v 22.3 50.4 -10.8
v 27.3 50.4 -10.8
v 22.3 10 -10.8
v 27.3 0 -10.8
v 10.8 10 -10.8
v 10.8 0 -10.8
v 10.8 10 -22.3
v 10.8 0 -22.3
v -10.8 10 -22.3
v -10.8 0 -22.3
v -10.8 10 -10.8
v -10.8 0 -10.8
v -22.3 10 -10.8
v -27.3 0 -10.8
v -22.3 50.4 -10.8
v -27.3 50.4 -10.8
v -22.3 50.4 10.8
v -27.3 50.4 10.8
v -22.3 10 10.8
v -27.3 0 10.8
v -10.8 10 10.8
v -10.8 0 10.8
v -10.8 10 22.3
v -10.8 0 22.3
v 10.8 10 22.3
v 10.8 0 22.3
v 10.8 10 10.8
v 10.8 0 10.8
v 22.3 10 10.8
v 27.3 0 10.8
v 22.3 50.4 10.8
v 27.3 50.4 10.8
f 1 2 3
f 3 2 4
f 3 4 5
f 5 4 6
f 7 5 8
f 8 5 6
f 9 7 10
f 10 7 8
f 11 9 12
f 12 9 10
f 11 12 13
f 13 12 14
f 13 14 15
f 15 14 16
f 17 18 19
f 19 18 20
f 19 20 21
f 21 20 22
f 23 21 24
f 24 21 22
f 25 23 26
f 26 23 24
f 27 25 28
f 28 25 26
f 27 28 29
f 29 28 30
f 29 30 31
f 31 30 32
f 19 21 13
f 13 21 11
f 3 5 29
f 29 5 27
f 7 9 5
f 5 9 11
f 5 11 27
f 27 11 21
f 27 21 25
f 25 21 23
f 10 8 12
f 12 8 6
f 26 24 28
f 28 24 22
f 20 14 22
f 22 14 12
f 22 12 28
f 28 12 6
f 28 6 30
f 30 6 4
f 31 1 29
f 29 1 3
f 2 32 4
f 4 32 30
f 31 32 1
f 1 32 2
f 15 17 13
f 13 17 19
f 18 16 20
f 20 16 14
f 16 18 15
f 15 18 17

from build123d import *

# Parameters (mm, degrees)
RESSALTO_EXTRUS_O1_DEPTH = 10
ESBO_O2_W                = 5
ESBO_O2_H                = 21.6
RESSALTO_EXTRUS_O2_DEPTH = 50.4


with BuildPart() as part:
    # Esboço1 → Ressalto-extrusão1 (new body)
    with BuildSketch(Plane(origin=(0, 0, 0), x_dir=(1, 0, 0), z_dir=(0, 1, 0))):
        Polygon((-10.8, 22.3), (-10.8, 10.8), (-22.3, 10.8), (-22.3, -10.8), (-10.8, -10.8), (-10.8, -22.3), (10.8, -22.3), (10.8, -10.8), (22.3, -10.8), (22.3, 10.8), (10.8, 10.8), (10.8, 22.3), align=None)
    extrude(amount=RESSALTO_EXTRUS_O1_DEPTH)

    # Esboço2 → Ressalto-extrusão2 (add)
    with BuildSketch(Plane(origin=(0, 0, 0), x_dir=(1, 0, 0), z_dir=(0, 1, 0))):
        with Locations((24.8, 0)):
            Rectangle(ESBO_O2_W, ESBO_O2_H)
        with Locations((-24.8, 0)):
            Rectangle(ESBO_O2_W, ESBO_O2_H)
    extrude(amount=RESSALTO_EXTRUS_O2_DEPTH)


solid = part.part
